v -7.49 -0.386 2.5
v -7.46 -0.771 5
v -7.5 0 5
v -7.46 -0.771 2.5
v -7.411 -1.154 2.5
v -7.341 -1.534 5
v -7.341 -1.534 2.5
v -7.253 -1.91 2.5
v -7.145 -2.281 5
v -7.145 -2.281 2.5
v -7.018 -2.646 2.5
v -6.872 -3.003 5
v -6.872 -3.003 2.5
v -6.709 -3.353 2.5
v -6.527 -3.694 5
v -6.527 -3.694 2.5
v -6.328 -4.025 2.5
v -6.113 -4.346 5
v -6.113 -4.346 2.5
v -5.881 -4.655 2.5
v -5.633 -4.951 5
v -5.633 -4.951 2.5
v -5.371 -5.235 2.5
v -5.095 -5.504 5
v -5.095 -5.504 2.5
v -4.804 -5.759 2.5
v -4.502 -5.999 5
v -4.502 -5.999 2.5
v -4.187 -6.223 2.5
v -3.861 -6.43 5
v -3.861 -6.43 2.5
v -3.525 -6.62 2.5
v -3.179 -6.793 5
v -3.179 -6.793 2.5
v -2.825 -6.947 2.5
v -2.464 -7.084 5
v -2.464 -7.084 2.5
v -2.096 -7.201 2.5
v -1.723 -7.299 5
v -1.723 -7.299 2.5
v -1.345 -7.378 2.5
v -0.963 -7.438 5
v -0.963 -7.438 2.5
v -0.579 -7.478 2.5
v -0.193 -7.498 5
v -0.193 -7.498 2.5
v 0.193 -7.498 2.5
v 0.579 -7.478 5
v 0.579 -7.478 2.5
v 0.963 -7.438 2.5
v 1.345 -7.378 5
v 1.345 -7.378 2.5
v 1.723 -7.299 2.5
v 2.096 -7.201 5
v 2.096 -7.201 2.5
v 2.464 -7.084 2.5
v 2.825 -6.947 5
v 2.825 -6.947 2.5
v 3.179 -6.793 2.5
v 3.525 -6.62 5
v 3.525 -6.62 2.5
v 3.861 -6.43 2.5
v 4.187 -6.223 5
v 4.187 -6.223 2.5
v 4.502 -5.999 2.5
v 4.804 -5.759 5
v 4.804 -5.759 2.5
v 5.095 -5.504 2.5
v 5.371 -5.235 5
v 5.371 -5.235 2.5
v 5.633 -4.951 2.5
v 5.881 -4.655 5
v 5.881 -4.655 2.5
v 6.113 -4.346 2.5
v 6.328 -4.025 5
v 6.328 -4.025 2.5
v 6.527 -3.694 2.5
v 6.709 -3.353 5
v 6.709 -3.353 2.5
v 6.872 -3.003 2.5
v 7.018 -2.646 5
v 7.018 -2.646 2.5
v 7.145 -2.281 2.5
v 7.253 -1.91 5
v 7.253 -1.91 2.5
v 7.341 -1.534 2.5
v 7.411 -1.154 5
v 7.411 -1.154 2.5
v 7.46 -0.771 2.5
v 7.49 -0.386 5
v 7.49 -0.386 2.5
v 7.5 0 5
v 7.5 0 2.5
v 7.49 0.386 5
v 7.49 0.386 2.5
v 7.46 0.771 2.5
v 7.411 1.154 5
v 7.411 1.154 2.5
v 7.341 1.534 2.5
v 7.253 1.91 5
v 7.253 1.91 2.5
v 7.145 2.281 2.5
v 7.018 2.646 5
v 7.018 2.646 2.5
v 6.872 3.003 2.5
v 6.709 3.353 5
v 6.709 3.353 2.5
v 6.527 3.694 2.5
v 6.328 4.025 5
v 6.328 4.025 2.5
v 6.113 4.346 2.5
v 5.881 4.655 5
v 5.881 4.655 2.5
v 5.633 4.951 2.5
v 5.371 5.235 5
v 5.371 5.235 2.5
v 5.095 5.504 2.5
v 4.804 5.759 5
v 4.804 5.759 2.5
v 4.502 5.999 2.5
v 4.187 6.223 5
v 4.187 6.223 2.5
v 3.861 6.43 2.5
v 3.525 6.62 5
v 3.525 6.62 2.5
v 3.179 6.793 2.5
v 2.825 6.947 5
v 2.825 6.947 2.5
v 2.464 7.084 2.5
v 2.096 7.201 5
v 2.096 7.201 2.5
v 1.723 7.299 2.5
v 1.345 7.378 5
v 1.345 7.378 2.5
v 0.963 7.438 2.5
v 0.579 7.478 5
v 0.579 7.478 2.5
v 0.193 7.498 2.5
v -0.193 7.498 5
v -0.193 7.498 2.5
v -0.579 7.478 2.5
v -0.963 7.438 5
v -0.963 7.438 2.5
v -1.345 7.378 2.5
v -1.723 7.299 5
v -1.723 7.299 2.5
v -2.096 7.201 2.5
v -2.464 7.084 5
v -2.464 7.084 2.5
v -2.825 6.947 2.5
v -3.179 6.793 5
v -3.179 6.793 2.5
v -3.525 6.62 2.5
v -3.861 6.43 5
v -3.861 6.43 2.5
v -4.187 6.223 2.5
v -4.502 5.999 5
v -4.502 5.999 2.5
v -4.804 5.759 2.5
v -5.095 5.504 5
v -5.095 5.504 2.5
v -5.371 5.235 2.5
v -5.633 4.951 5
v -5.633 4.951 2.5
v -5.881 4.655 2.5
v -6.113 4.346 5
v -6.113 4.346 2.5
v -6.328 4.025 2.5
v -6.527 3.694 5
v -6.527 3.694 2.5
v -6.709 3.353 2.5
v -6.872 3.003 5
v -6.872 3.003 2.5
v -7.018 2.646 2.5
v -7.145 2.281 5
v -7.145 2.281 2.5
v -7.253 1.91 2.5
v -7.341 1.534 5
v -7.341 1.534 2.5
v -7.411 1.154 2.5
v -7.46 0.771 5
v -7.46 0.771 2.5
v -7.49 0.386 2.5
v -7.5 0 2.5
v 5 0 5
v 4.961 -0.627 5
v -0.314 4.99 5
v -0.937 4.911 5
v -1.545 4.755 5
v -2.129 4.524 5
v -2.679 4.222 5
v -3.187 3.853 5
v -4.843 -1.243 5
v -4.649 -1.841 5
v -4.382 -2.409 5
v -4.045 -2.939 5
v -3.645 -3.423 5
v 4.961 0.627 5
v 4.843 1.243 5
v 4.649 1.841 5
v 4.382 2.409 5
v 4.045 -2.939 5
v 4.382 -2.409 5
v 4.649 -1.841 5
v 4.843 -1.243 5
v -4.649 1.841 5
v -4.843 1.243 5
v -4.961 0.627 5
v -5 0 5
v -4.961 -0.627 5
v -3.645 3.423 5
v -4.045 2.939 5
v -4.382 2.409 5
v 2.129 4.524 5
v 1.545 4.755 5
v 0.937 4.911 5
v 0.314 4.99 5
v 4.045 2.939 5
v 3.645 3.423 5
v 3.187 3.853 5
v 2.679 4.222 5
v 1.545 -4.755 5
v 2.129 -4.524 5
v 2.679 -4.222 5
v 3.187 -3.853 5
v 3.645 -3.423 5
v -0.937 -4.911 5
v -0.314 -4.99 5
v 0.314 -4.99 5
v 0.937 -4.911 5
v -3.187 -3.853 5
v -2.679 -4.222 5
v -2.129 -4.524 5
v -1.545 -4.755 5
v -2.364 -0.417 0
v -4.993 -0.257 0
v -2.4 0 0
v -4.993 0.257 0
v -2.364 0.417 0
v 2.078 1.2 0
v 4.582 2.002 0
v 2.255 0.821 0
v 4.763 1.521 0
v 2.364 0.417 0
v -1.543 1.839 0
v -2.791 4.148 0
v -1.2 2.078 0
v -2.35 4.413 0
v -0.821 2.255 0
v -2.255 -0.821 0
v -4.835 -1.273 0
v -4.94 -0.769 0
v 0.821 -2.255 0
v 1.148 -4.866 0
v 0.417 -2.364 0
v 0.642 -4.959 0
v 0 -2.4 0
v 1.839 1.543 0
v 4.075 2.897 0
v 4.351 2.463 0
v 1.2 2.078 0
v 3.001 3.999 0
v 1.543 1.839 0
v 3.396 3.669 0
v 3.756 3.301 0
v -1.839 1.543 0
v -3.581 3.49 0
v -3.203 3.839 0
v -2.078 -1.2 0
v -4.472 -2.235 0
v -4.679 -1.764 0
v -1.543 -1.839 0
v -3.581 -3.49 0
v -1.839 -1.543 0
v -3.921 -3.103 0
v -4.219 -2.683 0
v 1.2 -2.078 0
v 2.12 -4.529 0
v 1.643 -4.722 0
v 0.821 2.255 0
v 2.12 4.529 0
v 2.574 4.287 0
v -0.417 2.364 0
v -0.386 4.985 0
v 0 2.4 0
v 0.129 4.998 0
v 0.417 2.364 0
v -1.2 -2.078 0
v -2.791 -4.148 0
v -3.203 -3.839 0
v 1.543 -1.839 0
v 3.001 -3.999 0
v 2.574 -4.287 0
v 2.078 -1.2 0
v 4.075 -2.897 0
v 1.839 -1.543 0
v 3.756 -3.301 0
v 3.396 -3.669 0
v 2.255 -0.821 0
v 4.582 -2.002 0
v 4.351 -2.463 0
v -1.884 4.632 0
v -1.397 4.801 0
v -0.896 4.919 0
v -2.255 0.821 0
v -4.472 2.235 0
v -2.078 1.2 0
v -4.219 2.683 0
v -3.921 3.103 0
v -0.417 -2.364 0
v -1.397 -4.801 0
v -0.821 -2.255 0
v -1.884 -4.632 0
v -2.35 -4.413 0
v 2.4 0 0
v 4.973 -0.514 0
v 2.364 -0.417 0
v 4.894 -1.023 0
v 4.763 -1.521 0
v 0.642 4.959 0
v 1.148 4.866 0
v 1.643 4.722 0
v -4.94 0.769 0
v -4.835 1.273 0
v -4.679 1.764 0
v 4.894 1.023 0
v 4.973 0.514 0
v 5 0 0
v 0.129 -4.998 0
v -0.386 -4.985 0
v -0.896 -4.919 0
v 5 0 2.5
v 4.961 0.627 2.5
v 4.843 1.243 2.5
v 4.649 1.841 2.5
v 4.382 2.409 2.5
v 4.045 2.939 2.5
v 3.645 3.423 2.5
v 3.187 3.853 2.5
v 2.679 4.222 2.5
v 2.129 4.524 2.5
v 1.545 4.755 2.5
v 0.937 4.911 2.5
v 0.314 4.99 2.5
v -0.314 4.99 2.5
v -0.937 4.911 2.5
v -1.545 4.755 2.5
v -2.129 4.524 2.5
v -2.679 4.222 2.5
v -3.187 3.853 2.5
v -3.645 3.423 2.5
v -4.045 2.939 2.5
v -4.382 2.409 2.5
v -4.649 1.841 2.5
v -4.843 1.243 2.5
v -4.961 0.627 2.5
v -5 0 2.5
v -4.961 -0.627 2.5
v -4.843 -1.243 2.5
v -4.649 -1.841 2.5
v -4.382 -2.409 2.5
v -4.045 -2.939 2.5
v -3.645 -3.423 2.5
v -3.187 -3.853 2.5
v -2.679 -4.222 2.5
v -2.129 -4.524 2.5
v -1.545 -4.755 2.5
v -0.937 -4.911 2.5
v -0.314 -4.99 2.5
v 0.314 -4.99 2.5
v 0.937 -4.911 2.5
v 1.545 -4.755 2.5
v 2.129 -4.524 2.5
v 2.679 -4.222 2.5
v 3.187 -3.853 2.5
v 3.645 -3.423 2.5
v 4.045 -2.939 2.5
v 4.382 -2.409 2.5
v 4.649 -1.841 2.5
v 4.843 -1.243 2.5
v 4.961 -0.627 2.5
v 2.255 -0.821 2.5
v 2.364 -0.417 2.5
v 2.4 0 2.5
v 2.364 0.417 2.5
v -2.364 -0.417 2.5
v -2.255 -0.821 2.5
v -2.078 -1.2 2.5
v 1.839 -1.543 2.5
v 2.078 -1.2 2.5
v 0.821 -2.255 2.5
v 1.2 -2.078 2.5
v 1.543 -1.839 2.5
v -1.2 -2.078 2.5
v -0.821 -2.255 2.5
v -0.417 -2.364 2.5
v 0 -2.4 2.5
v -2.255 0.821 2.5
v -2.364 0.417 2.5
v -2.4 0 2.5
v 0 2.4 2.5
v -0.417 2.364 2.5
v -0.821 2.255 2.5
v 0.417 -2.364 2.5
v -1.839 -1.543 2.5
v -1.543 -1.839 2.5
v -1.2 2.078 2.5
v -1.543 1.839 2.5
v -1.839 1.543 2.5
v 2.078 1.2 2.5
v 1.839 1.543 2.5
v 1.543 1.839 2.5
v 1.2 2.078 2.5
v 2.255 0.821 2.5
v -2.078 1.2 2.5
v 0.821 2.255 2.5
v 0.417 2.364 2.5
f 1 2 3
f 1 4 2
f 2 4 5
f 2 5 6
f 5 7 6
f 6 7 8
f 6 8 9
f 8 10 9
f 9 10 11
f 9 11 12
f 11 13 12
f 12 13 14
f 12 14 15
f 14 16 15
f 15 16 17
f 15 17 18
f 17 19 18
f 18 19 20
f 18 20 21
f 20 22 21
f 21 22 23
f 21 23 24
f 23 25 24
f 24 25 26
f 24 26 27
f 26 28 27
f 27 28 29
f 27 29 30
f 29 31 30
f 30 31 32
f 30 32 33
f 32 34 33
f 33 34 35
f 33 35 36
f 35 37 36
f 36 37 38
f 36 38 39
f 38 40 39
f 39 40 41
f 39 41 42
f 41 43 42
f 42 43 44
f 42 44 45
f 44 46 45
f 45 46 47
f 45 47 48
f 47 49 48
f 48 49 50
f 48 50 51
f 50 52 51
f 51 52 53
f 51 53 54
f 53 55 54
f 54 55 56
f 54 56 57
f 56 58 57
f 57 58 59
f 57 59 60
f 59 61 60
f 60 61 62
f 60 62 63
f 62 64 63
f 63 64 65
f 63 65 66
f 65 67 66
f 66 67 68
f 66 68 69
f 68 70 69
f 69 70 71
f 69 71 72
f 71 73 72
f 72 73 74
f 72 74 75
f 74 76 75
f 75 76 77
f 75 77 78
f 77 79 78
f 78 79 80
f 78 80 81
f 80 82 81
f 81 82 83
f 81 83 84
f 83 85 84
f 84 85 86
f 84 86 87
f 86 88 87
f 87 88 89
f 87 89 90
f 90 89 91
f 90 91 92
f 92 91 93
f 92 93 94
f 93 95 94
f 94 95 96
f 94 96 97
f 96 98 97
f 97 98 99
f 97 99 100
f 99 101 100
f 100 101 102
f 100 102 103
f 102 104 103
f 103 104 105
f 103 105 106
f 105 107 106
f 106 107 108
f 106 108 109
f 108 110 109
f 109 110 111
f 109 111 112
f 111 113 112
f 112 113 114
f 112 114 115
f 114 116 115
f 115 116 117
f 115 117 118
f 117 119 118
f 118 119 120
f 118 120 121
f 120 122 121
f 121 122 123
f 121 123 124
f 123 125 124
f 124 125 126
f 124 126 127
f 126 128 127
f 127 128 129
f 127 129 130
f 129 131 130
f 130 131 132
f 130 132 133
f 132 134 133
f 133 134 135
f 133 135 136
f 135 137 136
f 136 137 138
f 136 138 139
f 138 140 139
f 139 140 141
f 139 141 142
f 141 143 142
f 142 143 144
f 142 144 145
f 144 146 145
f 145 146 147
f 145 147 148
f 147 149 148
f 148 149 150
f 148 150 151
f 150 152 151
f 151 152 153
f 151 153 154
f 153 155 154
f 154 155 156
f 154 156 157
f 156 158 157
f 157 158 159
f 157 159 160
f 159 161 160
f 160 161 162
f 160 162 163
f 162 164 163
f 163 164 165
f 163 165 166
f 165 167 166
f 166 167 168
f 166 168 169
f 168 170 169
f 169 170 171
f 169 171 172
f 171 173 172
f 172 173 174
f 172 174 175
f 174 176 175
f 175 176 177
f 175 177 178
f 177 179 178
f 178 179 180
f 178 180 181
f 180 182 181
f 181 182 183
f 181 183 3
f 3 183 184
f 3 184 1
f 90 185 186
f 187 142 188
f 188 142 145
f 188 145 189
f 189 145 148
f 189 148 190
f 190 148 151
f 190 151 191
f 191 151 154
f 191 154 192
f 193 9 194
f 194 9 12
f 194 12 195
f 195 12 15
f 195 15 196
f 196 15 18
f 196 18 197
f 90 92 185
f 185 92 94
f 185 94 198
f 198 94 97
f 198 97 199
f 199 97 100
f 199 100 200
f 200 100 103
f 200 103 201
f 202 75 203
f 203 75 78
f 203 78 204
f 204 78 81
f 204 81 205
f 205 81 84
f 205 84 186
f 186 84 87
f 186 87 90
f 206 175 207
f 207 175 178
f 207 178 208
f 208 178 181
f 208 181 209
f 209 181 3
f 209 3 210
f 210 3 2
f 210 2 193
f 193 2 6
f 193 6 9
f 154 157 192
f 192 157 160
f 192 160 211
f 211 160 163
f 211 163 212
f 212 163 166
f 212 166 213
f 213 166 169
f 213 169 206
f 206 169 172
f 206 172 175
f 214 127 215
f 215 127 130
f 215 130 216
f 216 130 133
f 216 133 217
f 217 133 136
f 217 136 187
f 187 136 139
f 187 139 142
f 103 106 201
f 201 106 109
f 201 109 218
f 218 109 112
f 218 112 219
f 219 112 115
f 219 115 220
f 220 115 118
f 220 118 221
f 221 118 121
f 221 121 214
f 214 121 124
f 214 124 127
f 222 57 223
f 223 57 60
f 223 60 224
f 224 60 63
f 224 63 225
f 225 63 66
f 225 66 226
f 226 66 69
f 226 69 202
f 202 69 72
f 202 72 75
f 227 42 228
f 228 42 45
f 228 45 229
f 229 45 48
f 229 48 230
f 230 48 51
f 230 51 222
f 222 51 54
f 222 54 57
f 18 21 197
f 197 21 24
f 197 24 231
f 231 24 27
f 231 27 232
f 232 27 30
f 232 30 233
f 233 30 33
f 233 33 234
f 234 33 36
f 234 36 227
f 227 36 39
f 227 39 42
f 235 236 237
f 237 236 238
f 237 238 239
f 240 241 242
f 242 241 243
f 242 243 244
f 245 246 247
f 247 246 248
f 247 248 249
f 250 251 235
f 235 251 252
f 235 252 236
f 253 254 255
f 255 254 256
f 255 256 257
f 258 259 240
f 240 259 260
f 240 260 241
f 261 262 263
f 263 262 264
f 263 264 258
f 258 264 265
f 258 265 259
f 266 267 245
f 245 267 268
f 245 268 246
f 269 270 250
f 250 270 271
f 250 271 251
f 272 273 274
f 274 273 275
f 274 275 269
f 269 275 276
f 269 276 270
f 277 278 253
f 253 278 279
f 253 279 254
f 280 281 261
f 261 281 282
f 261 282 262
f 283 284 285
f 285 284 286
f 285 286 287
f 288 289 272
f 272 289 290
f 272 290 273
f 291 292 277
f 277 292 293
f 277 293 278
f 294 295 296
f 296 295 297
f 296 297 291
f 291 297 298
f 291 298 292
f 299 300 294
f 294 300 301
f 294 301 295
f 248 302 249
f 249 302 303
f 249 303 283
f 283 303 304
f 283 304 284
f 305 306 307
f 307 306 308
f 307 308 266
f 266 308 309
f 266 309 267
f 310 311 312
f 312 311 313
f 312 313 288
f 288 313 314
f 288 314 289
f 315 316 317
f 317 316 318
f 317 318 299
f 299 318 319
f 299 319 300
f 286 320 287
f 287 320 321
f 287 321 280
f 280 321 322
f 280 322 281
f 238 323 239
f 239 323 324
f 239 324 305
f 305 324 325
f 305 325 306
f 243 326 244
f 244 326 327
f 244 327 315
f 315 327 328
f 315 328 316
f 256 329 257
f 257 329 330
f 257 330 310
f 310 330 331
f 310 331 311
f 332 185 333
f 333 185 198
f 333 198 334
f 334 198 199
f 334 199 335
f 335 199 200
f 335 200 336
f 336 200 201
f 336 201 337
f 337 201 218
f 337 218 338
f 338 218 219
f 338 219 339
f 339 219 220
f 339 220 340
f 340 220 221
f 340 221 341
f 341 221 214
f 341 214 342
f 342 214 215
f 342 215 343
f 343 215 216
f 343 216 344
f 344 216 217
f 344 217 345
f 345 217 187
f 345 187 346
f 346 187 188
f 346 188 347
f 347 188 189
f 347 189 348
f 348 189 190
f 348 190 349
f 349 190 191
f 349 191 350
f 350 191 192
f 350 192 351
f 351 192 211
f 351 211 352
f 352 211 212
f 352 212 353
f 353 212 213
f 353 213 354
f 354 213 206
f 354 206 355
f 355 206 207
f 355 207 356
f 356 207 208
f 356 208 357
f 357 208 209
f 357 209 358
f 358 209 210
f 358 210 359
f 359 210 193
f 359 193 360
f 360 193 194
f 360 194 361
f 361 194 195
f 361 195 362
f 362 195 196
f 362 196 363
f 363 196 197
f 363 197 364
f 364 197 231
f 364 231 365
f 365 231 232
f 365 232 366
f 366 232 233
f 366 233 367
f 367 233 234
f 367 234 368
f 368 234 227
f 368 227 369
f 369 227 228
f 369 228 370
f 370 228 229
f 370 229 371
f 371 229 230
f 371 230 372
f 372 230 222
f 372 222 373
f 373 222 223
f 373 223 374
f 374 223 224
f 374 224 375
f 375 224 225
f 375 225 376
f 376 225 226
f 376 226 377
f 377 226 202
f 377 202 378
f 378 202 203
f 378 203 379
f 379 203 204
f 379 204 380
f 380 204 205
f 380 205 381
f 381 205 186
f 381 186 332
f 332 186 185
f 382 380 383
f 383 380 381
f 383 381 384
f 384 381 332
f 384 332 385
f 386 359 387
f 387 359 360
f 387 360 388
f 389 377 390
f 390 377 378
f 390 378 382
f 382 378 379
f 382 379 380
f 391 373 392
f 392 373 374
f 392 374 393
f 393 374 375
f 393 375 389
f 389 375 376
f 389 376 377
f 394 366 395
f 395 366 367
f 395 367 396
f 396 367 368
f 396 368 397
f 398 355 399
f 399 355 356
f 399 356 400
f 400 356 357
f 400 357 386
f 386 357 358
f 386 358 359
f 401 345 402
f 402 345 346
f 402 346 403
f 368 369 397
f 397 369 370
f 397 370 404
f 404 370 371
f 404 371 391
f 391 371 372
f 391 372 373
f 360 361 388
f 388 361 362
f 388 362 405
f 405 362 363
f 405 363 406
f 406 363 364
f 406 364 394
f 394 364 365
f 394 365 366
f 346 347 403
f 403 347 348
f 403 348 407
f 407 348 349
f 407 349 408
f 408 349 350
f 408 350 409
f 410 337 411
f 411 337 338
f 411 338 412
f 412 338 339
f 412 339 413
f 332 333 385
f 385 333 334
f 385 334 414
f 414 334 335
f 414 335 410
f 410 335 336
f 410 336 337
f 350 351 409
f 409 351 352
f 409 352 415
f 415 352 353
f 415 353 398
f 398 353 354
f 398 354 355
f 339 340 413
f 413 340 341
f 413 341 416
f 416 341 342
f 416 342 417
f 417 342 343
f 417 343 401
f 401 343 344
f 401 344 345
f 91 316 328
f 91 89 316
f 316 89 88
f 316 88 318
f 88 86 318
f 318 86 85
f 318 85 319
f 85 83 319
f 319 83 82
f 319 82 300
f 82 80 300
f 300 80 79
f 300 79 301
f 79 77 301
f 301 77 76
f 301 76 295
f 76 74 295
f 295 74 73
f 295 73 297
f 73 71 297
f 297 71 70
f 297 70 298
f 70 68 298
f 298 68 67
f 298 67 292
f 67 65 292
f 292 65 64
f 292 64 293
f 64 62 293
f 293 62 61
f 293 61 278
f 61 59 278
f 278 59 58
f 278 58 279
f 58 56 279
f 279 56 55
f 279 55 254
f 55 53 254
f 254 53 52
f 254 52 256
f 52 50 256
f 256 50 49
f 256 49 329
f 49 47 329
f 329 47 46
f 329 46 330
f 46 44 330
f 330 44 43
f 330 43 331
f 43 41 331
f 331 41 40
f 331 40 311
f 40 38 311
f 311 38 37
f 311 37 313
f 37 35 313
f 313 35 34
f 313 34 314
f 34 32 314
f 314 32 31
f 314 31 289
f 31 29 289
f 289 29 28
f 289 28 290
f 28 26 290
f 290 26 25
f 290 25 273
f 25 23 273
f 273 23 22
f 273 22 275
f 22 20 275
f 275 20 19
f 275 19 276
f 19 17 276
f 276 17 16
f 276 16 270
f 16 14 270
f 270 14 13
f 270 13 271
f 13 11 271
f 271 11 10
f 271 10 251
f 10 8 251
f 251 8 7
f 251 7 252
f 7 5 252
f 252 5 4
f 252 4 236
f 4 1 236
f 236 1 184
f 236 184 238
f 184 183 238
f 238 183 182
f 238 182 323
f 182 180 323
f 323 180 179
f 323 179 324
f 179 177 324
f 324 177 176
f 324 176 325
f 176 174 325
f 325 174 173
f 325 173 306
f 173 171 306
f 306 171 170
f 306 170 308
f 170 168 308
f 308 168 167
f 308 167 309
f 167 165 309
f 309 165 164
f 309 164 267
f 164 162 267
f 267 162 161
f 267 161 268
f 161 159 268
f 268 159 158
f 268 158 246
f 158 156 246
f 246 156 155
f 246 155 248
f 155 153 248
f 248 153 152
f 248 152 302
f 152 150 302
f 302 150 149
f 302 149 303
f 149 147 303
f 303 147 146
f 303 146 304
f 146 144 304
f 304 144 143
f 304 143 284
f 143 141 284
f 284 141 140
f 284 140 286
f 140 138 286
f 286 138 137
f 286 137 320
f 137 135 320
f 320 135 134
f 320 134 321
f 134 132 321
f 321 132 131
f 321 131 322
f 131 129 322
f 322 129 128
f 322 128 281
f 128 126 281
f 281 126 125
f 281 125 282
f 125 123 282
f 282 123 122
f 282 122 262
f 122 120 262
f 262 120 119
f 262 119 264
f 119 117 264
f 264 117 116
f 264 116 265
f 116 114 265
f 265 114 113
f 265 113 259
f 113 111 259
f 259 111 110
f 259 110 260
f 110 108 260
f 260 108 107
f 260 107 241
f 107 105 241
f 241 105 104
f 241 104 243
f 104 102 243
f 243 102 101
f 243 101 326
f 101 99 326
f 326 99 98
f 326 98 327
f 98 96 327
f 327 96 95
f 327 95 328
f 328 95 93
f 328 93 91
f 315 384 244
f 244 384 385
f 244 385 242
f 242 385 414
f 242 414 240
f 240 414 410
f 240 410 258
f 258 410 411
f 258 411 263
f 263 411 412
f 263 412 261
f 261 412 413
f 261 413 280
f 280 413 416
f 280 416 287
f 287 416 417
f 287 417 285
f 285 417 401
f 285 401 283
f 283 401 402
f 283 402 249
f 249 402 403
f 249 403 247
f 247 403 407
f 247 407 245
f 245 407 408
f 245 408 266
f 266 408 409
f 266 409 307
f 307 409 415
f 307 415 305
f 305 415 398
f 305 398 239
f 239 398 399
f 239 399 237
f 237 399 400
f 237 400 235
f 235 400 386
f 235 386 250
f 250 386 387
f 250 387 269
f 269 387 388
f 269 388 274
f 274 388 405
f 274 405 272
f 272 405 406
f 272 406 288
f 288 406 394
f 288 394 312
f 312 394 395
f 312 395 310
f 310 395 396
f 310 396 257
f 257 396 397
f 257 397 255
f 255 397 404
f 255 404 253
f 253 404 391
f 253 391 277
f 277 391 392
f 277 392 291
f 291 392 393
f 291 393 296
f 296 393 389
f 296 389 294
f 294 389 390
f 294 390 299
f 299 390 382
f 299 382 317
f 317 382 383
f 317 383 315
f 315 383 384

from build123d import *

# Parameters (mm, degrees)
SKETCH1_R           = 7.5
BOSS_EXTRUDE1_DEPTH = 5
SKETCH2_R           = 5
CUT_EXTRUDE1_DEPTH  = 2.5
CHAMFER1_SIZE       = 2.5
SKETCH3_R           = 2.4
CUT_EXTRUDE2_DEPTH  = 2.5


with BuildPart() as part:
    # Sketch1 → Boss-Extrude1 (new body)
    with BuildSketch(Plane.XY):
        Circle(SKETCH1_R)
    extrude(amount=BOSS_EXTRUDE1_DEPTH)

    # Sketch2 → Cut-Extrude1 (cut)
    with BuildSketch(Plane.XY.offset(5)):
        Circle(SKETCH2_R)
    extrude(amount=-CUT_EXTRUDE1_DEPTH, mode=Mode.SUBTRACT)

    # Chamfer1
    chamfer1_edges = [part.edges().sort_by_distance(p)[0] for p in [
        (-7.5, 0, 0),
    ]]
    chamfer(chamfer1_edges, length=CHAMFER1_SIZE)

    # Sketch3 → Cut-Extrude2 (cut)
    with BuildSketch(Plane.XY.offset(2.5)):
        Circle(SKETCH3_R)
    extrude(amount=-CUT_EXTRUDE2_DEPTH, mode=Mode.SUBTRACT)


solid = part.part
